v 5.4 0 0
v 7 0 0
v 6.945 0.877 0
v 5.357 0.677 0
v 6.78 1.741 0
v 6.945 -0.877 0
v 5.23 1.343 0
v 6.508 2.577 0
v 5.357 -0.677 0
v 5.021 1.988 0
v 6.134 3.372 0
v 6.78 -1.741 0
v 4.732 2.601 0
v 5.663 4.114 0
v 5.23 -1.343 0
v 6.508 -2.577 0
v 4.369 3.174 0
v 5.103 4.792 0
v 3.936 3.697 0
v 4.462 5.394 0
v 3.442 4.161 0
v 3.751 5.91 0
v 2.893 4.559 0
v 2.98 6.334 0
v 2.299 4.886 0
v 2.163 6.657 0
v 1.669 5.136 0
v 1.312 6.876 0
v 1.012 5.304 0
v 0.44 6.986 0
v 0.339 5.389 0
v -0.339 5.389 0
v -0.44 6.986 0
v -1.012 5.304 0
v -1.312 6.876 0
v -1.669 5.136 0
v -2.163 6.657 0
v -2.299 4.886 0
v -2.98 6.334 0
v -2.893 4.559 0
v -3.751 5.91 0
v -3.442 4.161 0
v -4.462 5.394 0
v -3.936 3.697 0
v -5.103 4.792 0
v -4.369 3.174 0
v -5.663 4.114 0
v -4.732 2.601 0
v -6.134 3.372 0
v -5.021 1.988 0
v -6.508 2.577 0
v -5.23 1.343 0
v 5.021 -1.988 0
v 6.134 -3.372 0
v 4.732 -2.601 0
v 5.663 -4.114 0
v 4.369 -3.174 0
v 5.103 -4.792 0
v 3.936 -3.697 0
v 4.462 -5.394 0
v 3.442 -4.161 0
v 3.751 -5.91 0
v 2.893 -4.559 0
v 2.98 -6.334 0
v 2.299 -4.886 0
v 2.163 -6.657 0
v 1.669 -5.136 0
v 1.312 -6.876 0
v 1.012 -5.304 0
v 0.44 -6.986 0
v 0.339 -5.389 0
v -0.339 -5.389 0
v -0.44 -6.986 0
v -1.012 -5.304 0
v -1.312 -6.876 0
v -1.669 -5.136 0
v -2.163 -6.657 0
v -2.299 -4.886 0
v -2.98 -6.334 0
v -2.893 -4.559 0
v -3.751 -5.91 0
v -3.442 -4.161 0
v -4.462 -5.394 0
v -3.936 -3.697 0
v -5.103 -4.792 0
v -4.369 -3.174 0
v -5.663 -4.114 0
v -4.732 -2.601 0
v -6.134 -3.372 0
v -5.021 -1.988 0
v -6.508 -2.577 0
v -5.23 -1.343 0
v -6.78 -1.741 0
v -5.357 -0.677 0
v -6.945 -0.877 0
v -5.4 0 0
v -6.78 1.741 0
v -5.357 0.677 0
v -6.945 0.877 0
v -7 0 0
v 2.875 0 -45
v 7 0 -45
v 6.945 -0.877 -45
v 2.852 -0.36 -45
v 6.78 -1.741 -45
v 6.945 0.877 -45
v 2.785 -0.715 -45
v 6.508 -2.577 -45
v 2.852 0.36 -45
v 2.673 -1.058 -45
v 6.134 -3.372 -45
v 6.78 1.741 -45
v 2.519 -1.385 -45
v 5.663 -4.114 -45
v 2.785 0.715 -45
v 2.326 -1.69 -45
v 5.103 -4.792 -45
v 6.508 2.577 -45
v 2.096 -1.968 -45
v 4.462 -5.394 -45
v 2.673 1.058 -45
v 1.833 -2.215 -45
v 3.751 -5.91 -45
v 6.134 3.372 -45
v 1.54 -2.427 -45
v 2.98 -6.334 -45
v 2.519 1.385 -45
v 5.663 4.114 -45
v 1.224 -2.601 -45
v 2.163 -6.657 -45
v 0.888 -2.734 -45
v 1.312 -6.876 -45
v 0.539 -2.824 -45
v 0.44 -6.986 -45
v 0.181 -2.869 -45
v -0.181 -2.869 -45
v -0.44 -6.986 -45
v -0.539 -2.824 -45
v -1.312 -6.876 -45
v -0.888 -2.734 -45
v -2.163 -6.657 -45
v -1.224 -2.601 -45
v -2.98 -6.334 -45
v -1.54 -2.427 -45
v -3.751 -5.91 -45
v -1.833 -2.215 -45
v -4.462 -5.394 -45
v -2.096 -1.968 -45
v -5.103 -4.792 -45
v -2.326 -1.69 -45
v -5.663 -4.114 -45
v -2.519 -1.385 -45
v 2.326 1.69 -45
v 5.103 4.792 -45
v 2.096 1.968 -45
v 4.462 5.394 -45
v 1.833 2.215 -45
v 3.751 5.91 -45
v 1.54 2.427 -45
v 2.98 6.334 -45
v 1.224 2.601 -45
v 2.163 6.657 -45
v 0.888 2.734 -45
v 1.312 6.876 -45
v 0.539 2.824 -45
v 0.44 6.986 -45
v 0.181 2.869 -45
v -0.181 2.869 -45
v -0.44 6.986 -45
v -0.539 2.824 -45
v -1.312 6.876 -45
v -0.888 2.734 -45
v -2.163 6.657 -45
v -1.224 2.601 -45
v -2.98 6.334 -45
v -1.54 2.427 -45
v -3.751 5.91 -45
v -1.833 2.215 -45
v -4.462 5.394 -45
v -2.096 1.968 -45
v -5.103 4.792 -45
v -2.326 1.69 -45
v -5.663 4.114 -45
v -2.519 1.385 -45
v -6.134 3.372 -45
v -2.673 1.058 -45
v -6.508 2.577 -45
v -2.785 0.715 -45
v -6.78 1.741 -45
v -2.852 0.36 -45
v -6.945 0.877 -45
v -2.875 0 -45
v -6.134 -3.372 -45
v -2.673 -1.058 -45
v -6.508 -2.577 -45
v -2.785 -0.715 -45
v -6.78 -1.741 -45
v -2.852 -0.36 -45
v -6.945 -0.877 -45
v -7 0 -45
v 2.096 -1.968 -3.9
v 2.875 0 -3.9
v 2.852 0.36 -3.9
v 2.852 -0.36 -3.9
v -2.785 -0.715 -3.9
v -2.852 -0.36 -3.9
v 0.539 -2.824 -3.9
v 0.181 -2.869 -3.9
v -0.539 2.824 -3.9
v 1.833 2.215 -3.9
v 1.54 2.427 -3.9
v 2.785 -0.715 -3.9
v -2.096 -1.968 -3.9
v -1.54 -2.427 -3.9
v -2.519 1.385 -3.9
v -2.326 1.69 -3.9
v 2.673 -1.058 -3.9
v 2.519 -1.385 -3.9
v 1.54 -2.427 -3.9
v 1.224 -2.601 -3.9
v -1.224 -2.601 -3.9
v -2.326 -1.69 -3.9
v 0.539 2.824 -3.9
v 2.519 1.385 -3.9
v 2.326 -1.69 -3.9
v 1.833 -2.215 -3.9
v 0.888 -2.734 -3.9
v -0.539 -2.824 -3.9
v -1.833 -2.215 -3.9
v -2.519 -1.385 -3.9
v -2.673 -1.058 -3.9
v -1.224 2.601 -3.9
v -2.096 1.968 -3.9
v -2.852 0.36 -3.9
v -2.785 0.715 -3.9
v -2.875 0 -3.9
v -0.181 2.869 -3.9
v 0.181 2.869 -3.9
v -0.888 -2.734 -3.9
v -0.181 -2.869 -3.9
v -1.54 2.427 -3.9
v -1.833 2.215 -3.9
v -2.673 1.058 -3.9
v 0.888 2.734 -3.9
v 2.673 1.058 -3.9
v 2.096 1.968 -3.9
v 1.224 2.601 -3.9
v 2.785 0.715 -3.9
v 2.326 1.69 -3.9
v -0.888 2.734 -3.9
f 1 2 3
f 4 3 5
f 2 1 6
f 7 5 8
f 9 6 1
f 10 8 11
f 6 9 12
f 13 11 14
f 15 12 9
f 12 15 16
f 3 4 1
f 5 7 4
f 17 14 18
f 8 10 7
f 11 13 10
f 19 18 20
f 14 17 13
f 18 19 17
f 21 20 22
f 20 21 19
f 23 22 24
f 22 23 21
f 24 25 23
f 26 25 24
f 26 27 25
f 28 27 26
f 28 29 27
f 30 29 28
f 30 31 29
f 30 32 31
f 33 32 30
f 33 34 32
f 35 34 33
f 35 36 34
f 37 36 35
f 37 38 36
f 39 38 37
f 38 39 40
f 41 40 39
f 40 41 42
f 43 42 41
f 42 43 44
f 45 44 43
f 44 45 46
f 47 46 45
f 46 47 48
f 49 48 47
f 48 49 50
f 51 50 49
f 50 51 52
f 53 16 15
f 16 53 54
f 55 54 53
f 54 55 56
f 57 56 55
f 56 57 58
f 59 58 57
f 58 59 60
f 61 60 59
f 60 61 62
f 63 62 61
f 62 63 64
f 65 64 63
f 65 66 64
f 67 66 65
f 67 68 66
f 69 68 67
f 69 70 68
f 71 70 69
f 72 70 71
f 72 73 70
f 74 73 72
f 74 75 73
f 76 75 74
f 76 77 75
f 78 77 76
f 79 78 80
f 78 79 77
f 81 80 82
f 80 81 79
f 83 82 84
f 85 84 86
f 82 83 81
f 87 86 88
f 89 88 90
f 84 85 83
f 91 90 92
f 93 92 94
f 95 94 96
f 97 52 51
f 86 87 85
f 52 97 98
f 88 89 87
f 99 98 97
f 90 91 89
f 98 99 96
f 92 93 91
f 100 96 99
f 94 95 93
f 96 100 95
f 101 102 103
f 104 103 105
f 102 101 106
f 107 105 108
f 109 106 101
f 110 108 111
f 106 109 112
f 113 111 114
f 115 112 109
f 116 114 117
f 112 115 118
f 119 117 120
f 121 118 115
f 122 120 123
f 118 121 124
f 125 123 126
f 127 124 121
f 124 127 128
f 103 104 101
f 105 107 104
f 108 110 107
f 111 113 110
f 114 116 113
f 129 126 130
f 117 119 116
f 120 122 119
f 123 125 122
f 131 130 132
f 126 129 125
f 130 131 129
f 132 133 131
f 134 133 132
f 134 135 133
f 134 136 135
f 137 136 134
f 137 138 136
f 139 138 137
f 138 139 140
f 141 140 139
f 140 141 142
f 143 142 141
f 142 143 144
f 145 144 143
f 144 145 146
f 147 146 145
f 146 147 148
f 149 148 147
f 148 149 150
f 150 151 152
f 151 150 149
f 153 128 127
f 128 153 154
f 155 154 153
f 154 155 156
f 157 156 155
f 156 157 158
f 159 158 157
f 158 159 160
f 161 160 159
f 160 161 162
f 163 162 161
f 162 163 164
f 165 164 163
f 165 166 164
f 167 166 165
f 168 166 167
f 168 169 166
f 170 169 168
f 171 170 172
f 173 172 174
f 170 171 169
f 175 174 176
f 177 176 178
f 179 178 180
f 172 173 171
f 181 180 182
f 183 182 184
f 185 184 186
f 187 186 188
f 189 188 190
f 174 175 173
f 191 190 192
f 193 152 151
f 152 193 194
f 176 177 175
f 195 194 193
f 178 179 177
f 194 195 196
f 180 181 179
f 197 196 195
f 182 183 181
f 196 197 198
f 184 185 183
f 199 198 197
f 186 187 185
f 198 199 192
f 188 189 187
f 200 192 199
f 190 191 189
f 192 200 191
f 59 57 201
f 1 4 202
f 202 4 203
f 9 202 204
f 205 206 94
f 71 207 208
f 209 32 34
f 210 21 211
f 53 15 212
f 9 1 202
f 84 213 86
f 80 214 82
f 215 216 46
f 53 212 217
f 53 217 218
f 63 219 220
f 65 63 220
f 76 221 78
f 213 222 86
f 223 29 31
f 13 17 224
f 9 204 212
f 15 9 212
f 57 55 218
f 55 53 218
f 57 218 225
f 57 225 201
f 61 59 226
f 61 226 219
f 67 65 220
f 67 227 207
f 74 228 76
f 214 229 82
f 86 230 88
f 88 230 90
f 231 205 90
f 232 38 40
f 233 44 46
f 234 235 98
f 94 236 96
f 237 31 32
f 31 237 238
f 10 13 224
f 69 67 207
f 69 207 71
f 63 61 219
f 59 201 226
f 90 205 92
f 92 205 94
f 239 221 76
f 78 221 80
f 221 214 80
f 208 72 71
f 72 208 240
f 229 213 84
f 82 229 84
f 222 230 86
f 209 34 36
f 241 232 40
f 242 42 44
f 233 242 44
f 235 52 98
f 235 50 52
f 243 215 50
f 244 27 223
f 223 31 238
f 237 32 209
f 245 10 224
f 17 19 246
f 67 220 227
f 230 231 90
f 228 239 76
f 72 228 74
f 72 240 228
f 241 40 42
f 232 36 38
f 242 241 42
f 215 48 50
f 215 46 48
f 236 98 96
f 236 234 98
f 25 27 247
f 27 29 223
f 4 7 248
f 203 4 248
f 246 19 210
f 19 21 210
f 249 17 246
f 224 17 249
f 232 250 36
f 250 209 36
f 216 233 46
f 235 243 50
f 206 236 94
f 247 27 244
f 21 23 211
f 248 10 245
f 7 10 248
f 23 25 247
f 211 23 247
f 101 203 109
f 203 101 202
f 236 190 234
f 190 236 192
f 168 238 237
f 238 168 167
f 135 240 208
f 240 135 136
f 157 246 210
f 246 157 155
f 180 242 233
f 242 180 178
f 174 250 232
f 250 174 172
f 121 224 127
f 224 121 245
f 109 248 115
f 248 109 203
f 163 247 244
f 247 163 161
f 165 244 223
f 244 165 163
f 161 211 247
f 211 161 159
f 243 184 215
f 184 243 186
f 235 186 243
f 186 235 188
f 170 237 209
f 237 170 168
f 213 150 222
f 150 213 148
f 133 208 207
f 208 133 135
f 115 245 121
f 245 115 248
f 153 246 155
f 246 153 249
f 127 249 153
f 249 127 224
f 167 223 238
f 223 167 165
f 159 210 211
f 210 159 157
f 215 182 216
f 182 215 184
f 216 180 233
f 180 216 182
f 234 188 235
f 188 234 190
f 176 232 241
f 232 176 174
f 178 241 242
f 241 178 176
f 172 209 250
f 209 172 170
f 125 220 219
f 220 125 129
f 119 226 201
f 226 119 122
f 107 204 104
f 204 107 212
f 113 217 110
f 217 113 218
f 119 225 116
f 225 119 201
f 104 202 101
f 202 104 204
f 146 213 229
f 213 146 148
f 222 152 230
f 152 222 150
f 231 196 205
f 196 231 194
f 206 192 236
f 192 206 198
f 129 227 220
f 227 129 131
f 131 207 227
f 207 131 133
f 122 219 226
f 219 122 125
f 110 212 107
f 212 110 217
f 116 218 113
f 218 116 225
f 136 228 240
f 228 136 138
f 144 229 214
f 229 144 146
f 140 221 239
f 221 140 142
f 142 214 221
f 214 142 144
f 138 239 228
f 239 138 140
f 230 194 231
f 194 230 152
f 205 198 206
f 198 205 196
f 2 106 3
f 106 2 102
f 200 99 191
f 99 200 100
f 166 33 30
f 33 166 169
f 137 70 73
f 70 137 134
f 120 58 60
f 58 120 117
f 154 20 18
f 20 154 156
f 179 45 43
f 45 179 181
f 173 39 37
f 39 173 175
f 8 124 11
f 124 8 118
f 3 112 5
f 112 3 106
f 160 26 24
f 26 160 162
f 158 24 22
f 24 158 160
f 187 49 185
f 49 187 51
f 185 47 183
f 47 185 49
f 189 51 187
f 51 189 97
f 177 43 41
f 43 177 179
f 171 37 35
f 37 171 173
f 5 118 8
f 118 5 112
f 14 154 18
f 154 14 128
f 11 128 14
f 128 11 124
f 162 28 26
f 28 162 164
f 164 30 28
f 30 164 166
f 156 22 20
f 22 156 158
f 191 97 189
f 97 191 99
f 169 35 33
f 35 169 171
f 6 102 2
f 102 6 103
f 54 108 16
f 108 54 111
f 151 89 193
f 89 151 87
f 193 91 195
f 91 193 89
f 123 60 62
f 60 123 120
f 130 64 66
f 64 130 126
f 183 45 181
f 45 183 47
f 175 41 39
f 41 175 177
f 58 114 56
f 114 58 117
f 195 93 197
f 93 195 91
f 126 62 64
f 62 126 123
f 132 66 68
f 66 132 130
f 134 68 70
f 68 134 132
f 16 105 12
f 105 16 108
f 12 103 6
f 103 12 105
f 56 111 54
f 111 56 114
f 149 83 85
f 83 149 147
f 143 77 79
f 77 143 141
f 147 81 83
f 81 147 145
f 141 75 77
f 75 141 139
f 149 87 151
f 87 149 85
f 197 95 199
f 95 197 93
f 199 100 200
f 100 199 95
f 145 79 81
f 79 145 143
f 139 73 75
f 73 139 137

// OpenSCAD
$fn = 50;


difference() {
	union() {
		translate(v = [0, 0, -45.0000000000]) {
			cylinder(h = 45, r = 7.0000000000);
		}
		cylinder(h = 0, r = 10.0000000000);
	}
	union() {
		translate(v = [0, 0, 0]) {
			rotate(a = [0, 0, 0]) {
				difference() {
					union() {
						#translate(v = [0, 0, -45.0000000000]) {
							cylinder(h = 45, r = 2.6000000000);
						}
						#translate(v = [0, 0, -3.9000000000]) {
							cylinder(h = 3.9000000000, r = 7.0000000000, r1 = 2.8750000000, r2 = 5.4000000000);
						}
						#translate(v = [0, 0, -45.0000000000]) {
							cylinder(h = 45, r = 2.8750000000);
						}
						#translate(v = [0, 0, -45.0000000000]) {
							cylinder(h = 45, r = 2.6000000000);
						}
					}
					union();
				}
			}
		}
	}
}
